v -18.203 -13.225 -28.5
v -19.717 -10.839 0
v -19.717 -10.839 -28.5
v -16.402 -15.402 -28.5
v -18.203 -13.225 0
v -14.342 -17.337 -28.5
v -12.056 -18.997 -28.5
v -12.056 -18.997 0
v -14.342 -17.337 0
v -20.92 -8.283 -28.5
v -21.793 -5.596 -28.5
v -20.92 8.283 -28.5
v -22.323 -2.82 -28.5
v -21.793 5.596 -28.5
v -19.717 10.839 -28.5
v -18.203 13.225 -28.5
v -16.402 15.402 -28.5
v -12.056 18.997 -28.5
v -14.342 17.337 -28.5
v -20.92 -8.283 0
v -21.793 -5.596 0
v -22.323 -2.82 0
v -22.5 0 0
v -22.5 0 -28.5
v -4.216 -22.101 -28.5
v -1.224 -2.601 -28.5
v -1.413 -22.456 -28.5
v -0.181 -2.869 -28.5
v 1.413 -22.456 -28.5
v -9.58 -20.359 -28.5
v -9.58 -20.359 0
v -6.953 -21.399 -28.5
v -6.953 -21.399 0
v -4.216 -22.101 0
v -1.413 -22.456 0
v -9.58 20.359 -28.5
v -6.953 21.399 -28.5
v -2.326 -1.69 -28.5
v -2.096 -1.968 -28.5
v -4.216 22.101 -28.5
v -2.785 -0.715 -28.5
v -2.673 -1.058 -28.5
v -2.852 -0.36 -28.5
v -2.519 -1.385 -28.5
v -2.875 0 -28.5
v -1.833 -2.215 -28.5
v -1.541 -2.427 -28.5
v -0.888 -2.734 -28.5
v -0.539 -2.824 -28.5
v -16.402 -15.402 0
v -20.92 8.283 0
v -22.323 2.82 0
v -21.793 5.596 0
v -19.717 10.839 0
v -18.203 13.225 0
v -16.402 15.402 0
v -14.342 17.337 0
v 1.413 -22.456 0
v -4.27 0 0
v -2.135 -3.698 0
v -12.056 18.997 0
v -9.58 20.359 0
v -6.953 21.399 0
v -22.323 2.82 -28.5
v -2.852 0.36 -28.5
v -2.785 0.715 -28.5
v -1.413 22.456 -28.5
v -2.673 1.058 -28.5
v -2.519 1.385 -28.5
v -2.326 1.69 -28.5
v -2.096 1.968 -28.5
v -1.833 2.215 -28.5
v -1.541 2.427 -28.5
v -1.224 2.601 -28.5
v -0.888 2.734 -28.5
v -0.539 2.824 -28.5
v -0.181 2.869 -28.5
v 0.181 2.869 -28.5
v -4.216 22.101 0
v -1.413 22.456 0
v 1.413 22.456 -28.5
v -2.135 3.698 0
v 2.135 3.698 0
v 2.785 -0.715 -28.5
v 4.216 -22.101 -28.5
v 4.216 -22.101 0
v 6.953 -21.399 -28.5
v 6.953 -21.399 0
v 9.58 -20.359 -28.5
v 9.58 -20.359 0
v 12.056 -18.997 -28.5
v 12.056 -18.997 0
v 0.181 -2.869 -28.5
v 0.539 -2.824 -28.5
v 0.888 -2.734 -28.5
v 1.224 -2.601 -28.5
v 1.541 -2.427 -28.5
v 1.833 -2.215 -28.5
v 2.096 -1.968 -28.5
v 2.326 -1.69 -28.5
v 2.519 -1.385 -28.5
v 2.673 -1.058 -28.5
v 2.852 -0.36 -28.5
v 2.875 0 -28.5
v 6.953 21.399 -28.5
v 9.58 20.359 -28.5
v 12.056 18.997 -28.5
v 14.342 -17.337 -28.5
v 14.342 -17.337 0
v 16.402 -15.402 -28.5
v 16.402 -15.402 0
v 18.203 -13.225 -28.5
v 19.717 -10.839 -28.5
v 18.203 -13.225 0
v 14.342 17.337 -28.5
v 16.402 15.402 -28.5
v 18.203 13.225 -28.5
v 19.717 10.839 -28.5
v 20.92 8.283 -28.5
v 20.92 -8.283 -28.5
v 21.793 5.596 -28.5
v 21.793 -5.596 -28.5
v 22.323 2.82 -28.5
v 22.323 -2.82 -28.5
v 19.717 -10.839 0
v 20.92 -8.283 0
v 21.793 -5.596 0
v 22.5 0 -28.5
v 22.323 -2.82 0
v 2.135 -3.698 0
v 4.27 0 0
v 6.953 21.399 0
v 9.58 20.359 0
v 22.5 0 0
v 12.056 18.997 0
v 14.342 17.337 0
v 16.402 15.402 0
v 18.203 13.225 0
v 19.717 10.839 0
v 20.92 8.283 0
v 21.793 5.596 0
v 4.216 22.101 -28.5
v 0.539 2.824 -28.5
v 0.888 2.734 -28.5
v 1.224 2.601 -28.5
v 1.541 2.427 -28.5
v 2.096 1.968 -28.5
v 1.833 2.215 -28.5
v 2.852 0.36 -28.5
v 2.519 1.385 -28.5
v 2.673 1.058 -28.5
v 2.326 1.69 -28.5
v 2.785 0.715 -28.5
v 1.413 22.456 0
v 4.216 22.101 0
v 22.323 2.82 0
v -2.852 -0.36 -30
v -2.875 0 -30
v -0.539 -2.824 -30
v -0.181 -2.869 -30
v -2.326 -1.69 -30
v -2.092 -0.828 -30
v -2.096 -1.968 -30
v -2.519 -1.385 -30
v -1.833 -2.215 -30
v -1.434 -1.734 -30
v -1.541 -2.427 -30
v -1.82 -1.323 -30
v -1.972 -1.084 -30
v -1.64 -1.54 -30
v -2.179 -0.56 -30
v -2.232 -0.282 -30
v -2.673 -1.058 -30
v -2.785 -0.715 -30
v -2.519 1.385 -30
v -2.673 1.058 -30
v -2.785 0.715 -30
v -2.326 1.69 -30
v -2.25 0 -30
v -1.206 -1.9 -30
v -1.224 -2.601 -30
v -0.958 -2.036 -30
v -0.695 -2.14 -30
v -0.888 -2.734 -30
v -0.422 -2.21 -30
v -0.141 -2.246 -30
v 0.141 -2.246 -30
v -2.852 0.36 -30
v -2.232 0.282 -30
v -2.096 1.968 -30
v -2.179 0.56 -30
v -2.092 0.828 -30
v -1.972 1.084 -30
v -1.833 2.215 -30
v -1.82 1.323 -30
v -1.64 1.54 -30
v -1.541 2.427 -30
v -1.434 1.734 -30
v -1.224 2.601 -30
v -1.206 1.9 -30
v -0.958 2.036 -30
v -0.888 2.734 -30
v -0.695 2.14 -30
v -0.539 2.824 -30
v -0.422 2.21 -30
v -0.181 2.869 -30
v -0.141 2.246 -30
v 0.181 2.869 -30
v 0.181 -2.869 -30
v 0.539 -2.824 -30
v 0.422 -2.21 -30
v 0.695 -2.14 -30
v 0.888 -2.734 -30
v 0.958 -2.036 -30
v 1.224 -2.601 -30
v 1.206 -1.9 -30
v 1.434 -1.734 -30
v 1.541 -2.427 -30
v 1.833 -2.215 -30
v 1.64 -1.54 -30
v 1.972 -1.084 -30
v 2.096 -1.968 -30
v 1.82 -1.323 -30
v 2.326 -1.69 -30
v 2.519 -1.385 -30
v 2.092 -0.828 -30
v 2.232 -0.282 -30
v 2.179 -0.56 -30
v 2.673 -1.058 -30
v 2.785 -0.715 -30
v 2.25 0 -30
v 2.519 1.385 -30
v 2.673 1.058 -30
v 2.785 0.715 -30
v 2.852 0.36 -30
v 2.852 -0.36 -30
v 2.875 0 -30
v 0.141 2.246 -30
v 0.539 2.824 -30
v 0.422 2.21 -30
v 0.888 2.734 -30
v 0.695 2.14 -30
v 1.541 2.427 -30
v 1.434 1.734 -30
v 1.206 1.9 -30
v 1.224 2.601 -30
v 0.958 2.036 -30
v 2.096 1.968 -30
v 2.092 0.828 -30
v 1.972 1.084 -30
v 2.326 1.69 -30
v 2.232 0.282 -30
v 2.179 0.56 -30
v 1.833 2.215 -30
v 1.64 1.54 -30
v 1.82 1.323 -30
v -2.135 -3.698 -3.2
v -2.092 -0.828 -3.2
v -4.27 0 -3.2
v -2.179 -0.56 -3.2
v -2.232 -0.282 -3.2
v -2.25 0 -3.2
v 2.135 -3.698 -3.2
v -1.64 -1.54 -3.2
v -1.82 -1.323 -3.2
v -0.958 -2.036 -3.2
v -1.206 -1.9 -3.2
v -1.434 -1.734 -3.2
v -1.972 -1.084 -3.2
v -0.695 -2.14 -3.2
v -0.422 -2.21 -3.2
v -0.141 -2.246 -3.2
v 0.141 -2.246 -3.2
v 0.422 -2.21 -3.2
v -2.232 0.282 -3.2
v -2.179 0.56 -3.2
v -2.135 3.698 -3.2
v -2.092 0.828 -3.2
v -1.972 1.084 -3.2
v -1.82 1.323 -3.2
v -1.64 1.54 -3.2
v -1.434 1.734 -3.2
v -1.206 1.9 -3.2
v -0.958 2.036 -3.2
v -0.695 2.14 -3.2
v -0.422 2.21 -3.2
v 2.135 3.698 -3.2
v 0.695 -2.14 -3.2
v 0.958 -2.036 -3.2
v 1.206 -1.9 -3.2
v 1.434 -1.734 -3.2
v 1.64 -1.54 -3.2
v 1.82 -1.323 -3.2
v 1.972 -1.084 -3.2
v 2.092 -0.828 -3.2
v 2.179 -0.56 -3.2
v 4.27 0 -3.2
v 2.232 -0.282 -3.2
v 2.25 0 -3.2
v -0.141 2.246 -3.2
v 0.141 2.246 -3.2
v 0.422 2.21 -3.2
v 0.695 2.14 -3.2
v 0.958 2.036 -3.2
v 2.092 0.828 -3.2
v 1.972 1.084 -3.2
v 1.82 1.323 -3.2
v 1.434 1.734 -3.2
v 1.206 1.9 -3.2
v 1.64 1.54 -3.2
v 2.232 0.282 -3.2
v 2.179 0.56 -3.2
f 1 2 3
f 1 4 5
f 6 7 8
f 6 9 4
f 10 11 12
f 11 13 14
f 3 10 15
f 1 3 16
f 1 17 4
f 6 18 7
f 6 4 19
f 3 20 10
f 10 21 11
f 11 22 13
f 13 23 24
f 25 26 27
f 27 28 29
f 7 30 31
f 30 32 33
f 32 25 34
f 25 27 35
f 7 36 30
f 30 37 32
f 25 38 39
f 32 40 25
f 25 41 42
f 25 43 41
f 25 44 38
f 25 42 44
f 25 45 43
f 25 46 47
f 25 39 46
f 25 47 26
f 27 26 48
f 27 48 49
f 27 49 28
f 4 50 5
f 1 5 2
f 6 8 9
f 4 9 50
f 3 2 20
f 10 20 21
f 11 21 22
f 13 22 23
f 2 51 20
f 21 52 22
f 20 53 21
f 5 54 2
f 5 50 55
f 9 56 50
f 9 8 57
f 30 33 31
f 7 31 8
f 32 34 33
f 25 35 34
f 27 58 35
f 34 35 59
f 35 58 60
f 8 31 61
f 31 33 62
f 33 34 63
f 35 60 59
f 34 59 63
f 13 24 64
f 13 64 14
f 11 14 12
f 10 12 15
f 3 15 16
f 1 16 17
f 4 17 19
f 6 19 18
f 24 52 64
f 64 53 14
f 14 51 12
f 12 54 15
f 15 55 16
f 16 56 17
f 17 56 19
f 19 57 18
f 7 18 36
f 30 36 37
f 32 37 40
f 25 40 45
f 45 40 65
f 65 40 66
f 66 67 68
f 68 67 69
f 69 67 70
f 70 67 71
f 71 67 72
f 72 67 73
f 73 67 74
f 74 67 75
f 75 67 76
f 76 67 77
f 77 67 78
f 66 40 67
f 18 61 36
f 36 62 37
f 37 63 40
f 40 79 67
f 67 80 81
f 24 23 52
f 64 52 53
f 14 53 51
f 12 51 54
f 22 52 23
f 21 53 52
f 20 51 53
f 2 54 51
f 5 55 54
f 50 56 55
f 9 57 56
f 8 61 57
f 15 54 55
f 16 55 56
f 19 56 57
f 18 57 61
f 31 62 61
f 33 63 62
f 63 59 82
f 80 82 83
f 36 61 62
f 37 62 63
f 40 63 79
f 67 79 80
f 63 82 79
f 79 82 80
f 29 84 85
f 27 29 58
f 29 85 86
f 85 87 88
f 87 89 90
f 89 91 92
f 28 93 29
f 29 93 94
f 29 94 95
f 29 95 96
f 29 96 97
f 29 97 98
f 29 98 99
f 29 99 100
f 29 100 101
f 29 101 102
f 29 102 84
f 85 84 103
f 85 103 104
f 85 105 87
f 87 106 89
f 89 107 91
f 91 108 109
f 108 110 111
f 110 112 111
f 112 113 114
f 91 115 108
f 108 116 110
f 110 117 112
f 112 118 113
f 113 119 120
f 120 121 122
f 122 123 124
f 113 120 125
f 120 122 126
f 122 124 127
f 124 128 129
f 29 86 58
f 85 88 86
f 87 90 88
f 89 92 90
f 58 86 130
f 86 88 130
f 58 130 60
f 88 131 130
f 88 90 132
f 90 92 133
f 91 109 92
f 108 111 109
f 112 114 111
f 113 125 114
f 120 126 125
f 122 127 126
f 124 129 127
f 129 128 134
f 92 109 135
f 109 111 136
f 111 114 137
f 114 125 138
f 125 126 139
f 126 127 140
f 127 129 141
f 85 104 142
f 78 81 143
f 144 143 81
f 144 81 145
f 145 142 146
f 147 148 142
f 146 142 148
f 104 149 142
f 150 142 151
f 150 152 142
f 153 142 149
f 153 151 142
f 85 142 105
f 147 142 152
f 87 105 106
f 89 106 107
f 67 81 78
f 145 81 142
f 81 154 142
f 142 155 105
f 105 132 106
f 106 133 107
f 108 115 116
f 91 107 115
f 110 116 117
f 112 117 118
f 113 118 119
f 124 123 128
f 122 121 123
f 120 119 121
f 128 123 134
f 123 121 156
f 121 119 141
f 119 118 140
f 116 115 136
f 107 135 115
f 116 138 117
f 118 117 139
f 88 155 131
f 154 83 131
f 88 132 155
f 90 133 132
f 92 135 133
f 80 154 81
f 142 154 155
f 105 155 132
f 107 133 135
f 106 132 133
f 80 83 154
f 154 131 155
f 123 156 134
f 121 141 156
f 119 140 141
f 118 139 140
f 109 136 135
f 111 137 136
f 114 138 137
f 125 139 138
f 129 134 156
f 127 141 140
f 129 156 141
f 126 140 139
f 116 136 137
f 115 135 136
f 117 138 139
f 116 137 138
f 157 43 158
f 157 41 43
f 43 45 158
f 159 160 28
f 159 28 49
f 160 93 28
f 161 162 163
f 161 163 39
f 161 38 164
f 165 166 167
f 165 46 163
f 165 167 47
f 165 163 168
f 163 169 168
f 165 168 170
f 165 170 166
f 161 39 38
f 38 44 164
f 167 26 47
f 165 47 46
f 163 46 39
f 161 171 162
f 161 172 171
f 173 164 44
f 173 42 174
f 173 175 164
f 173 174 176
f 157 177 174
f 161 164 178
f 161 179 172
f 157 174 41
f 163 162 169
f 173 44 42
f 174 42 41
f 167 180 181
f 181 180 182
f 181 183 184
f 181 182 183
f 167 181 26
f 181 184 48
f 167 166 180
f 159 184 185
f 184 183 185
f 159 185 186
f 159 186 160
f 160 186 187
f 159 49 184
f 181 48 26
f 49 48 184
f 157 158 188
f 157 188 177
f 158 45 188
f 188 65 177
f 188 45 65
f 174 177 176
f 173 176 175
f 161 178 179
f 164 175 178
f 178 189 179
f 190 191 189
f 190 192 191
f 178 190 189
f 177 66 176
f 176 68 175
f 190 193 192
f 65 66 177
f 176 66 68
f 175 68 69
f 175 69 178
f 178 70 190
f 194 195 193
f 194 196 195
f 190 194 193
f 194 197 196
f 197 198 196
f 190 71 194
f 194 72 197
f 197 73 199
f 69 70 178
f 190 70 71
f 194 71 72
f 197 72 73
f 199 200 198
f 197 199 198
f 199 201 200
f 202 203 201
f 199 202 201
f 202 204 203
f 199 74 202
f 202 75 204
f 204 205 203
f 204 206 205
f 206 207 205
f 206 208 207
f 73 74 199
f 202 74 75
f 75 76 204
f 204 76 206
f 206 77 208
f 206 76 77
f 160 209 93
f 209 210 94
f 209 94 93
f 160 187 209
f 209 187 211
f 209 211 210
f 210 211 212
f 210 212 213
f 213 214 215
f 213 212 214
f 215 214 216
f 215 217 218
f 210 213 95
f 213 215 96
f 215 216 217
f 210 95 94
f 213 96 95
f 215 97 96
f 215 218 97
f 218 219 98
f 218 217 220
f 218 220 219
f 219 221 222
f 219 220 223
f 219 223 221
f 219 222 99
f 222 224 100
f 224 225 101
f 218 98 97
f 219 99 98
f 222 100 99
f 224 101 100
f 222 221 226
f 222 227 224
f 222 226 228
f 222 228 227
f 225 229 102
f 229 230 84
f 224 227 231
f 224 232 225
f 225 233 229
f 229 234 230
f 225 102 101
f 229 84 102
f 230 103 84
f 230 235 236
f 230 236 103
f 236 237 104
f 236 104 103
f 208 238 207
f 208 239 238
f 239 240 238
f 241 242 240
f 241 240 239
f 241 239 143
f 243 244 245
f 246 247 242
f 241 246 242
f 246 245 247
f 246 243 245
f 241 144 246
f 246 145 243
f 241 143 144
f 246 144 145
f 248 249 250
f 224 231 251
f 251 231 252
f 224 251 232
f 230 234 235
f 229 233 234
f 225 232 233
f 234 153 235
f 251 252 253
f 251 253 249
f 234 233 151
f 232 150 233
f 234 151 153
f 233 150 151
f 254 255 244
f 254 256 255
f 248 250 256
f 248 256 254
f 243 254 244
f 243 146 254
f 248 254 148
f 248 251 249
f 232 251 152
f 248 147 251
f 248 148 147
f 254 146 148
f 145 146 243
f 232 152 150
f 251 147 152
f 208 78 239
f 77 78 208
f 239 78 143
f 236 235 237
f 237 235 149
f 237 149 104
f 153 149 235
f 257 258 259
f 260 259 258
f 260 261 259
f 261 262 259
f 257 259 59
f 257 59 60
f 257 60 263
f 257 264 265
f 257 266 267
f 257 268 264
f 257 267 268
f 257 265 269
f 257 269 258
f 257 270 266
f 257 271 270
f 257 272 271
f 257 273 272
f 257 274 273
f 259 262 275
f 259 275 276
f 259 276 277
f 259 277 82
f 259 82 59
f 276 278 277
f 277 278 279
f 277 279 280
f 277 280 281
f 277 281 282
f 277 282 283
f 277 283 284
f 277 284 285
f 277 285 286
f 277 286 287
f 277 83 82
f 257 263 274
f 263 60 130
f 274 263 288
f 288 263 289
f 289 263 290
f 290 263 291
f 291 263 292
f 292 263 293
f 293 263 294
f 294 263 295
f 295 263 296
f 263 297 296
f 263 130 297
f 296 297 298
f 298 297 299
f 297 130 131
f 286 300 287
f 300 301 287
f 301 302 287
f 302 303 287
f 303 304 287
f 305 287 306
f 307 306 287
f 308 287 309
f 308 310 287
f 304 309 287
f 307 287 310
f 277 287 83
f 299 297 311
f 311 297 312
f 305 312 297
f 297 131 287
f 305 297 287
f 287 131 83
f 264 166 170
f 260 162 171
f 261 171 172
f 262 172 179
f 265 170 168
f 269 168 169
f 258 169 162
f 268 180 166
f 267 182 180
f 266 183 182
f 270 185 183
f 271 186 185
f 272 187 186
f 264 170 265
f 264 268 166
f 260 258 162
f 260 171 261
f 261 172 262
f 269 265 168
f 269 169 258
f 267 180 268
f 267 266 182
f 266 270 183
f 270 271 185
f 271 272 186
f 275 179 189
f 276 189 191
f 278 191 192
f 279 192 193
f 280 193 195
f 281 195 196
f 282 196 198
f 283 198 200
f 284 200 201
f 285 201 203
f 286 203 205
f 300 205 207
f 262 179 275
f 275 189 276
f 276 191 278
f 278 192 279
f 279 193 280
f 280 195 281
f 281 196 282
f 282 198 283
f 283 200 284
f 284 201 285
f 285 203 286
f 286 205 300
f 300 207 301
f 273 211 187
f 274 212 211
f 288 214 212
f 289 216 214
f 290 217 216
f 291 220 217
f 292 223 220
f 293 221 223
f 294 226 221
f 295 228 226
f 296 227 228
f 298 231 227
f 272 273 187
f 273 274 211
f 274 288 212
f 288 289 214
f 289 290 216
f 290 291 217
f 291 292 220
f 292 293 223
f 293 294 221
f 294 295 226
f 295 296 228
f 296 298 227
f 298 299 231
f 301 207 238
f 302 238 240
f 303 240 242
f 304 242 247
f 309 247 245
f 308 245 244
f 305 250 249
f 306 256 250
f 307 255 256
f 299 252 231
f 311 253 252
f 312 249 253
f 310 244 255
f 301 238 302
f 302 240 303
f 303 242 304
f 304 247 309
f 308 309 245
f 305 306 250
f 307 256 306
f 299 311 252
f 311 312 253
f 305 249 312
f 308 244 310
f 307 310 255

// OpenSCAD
$fn = 50;

difference() {
	union() {
		translate(v = [0, 0, -28.5]) {
			cylinder(h = 28.5, r = 22.5);
		}
		#translate(v = [0, 0, -30.0]) {
			cylinder(h = 30, r = 2.875);
		}
	}
	union() {
		translate(v = [0, 0, 0]) {
			rotate(a = [0, 0, 0]) {
				difference() {
					union() {
						translate(v = [0, 0, -3.2]) {
							linear_extrude(height = 3.2) {
								polygon(points = [[4.2698, 0.0], [2.1349000000000005, 3.697755269078796], [-2.134899999999999, 3.6977552690787965], [-4.2698, 5.228996902999369e-16], [-2.134900000000002, -3.6977552690787956], [2.1348999999999974, -3.697755269078798]]);
							}
						}
					}
					union();
				}
			}
		}
		#translate(v = [0, 0, -100.0]) {
			cylinder(h = 200, r = 2.25);
		}
	}
}
